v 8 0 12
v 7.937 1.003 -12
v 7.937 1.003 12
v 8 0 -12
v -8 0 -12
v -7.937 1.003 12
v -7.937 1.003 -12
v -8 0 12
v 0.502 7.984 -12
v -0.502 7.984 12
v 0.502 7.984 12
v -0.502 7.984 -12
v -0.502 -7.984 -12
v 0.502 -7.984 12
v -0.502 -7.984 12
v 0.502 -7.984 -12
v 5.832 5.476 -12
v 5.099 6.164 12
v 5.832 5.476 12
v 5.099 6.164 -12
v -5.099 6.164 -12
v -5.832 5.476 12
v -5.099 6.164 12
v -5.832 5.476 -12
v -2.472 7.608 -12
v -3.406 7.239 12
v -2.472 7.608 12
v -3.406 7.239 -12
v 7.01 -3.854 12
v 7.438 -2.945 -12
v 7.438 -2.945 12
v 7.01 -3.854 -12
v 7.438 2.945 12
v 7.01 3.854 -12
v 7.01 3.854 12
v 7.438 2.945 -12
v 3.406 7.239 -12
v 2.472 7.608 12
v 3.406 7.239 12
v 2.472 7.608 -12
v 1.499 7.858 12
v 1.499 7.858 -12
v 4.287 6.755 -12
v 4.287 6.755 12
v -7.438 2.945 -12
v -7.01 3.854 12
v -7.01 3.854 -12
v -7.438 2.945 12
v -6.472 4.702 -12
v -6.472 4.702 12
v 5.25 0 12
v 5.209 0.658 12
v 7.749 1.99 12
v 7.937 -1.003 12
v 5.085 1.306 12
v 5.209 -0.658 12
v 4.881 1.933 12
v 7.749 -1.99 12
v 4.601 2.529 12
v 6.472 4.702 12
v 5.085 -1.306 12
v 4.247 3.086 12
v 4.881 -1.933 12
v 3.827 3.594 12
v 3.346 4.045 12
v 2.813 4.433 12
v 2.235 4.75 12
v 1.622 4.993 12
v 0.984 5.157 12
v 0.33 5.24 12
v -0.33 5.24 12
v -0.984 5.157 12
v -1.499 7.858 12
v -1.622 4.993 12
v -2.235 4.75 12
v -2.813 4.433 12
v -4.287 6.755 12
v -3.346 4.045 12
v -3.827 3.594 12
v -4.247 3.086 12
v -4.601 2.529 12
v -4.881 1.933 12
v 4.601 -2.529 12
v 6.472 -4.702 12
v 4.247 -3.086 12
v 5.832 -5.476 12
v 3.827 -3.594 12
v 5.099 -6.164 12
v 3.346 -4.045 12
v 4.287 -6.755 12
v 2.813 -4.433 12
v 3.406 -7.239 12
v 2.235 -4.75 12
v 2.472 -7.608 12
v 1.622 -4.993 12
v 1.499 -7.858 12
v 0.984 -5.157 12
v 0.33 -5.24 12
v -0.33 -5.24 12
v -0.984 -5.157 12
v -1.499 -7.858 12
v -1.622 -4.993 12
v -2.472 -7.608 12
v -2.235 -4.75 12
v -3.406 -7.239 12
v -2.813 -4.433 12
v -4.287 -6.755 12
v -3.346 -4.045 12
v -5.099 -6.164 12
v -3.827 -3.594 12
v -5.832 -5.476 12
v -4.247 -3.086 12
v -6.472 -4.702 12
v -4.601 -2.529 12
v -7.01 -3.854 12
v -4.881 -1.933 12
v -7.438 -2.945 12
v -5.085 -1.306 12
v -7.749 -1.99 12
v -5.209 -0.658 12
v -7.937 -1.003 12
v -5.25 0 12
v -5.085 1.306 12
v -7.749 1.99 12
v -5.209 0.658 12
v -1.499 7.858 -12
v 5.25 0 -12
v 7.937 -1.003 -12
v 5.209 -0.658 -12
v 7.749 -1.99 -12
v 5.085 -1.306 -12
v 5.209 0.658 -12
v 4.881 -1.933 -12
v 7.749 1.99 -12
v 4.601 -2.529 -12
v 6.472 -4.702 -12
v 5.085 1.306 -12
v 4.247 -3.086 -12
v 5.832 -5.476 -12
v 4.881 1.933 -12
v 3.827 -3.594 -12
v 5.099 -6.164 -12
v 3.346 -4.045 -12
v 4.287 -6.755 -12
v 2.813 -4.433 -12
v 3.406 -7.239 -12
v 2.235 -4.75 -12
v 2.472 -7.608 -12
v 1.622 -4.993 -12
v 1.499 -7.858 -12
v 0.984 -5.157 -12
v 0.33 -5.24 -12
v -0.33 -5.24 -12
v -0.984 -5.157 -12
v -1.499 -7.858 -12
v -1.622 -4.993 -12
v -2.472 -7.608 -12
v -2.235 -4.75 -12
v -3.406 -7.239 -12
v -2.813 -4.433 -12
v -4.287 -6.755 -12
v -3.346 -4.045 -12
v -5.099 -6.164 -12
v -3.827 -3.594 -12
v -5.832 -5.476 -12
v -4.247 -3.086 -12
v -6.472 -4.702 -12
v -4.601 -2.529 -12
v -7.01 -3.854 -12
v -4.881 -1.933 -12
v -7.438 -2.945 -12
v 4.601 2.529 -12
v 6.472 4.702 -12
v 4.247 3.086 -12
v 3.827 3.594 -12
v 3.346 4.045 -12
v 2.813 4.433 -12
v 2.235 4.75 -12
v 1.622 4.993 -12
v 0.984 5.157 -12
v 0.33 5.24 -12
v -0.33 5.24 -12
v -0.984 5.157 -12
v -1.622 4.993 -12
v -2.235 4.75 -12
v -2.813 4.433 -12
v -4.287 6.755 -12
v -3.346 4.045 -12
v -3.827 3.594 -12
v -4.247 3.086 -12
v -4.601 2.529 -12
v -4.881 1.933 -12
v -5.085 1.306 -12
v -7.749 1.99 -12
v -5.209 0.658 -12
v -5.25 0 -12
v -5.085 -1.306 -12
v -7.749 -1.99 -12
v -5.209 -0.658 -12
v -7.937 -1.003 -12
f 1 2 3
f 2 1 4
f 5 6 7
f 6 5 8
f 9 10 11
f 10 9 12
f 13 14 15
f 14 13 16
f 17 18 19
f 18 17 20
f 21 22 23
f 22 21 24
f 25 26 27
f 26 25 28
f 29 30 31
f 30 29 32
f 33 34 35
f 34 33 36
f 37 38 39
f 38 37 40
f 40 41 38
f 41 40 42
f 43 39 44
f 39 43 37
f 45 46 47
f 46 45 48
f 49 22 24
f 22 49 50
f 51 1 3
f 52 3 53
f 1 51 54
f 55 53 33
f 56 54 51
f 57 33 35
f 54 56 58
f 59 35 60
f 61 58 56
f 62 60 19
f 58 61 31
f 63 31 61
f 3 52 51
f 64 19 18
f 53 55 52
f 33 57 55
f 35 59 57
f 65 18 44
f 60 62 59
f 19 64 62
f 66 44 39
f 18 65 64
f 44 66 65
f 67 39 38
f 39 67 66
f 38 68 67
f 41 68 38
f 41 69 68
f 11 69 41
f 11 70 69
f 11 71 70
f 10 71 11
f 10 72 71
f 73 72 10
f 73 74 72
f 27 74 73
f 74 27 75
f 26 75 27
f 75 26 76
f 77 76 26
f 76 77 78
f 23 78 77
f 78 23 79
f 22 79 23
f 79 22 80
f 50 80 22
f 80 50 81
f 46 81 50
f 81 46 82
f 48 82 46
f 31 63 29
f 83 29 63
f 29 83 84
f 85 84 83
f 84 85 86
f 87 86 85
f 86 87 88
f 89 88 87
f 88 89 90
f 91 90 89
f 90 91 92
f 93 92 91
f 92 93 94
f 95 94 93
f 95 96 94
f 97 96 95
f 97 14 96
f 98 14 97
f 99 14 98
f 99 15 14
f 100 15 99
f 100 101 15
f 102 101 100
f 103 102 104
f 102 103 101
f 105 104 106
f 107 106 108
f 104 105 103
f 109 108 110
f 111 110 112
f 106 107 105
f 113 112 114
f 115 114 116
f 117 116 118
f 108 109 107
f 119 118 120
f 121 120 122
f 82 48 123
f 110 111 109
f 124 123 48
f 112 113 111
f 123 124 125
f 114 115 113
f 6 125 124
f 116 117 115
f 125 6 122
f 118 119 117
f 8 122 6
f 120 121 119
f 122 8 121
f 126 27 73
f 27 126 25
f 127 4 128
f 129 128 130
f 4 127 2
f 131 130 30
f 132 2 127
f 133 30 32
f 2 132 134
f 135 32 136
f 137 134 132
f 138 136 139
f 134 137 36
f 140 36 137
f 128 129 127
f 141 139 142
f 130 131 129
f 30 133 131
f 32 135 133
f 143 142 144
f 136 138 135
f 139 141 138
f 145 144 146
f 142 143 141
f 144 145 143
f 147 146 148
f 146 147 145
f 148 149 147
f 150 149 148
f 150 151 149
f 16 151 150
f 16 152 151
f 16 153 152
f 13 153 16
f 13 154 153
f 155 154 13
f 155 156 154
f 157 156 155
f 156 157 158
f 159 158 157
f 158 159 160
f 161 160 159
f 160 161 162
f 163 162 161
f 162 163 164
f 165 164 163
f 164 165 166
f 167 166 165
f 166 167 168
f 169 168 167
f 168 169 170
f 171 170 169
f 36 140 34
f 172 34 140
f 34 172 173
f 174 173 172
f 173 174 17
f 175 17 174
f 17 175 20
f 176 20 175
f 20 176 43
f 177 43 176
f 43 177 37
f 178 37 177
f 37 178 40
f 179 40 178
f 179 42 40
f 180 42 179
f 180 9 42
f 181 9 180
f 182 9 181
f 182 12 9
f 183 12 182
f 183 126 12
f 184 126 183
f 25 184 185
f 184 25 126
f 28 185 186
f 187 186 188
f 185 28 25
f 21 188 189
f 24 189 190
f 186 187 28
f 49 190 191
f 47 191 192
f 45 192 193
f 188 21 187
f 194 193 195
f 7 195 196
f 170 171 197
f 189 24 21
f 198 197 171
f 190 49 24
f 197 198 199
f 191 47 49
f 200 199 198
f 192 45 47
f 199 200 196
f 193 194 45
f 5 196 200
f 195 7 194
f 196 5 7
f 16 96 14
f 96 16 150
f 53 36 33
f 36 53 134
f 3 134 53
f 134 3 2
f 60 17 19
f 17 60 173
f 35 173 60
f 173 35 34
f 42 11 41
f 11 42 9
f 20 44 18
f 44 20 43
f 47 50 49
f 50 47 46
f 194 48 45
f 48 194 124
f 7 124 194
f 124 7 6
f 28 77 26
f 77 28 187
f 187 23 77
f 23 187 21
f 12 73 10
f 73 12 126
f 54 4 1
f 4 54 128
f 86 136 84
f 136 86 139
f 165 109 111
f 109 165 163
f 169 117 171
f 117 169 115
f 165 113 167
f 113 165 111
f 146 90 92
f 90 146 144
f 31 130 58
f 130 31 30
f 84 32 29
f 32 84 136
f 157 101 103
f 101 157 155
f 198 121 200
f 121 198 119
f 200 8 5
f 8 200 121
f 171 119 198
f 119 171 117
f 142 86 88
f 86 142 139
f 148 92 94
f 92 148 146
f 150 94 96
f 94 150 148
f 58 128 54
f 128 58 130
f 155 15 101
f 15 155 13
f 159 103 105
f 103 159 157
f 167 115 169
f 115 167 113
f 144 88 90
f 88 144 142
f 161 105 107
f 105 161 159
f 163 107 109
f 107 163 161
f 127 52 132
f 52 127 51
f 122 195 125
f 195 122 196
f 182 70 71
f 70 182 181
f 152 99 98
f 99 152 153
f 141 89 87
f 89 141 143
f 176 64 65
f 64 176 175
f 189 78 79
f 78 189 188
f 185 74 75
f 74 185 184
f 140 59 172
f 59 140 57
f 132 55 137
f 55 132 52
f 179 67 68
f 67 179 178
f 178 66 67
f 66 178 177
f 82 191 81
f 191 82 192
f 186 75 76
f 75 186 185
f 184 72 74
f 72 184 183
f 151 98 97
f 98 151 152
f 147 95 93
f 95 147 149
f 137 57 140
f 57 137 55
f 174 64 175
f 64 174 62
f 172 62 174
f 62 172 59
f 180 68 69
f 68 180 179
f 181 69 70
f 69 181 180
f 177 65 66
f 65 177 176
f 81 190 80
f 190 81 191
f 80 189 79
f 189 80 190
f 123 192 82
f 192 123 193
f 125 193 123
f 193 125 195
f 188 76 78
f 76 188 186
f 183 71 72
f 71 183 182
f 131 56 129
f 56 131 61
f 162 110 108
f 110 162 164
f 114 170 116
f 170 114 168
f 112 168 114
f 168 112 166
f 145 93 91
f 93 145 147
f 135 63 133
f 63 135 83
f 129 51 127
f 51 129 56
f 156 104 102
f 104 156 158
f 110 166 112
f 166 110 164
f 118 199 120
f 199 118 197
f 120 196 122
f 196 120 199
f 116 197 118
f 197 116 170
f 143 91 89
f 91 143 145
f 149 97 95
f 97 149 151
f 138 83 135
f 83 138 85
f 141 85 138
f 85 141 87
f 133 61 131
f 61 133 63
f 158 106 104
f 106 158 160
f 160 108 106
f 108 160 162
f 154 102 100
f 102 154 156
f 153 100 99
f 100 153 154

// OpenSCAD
$fn = 50;


difference() {
	union() {
		translate(v = [0, 0, -12.0000000000]) {
			cylinder(h = 24, r = 8.0000000000);
		}
	}
	union() {
		translate(v = [0, 0, -100.0000000000]) {
			cylinder(h = 200, r = 5.2500000000);
		}
	}
}
